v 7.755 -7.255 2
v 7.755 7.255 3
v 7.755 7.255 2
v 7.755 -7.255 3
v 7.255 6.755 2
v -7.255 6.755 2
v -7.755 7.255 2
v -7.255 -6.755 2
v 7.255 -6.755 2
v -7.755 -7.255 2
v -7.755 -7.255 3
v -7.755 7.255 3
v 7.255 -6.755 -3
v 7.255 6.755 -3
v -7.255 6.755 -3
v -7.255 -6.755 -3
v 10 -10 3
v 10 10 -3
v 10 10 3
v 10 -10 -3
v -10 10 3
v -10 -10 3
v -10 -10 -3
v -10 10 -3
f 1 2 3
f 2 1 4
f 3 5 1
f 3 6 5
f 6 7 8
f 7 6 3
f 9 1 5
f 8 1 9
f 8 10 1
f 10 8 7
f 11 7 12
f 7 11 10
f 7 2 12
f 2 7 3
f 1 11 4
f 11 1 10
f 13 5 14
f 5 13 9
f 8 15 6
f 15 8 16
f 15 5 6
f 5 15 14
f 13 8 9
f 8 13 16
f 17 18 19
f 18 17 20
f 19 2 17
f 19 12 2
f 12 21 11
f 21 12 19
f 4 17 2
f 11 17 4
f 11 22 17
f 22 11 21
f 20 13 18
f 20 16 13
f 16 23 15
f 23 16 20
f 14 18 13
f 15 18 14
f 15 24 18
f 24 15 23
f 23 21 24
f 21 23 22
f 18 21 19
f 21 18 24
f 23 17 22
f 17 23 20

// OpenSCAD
// Generated by SolidPython 1.1.1 on 2021-04-05 22:56:38


difference() {
	cube(center = true, size = [20, 20, 6]);
	union() {
		translate(v = [0, 0, 3]) {
			cube(center = true, size = [15.5100000000, 14.5100000000, 2]);
		}
		cube(center = true, size = [14.5100000000, 13.5100000000, 8.5500000000]);
	}
}
/***********************************************
*********      SolidPython code:      **********
************************************************
 
#!/usr/bin/env python3

import solid as sl


def choc_switch():
    """
    Kailh Choc switch V1
    """
    o = offset = 3
    m = margin = 1.01
    body_xyz = [14.5 + m, 13.5 + m, 2]
    socket_xyz = [body_xyz[0] - 1, body_xyz[1] - 1, 5.55 + o]
    # keycaphole_xyz = [1.2, 3.0, None]
    # distance_between_center_of_keycap_holes = 5.7
    # grip_fins = None

    body = sl.cube(body_xyz, center=True)
    body = sl.translate([0, 0, 3])(body)
    socket = sl.cube(socket_xyz, center=True)
    return body + socket


def key_hole():
    base_xyz = [15, 14, 7]
    base = sl.cube(base_xyz, center=True)
    return base - choc_switch()


def plate():
    p = sl.cube([20, 20, 6], center=True)
    return p


keyboard_base = plate() - choc_switch()
sl.scad_render_to_file(keyboard_base, "model.scad")
 
 
************************************************/
